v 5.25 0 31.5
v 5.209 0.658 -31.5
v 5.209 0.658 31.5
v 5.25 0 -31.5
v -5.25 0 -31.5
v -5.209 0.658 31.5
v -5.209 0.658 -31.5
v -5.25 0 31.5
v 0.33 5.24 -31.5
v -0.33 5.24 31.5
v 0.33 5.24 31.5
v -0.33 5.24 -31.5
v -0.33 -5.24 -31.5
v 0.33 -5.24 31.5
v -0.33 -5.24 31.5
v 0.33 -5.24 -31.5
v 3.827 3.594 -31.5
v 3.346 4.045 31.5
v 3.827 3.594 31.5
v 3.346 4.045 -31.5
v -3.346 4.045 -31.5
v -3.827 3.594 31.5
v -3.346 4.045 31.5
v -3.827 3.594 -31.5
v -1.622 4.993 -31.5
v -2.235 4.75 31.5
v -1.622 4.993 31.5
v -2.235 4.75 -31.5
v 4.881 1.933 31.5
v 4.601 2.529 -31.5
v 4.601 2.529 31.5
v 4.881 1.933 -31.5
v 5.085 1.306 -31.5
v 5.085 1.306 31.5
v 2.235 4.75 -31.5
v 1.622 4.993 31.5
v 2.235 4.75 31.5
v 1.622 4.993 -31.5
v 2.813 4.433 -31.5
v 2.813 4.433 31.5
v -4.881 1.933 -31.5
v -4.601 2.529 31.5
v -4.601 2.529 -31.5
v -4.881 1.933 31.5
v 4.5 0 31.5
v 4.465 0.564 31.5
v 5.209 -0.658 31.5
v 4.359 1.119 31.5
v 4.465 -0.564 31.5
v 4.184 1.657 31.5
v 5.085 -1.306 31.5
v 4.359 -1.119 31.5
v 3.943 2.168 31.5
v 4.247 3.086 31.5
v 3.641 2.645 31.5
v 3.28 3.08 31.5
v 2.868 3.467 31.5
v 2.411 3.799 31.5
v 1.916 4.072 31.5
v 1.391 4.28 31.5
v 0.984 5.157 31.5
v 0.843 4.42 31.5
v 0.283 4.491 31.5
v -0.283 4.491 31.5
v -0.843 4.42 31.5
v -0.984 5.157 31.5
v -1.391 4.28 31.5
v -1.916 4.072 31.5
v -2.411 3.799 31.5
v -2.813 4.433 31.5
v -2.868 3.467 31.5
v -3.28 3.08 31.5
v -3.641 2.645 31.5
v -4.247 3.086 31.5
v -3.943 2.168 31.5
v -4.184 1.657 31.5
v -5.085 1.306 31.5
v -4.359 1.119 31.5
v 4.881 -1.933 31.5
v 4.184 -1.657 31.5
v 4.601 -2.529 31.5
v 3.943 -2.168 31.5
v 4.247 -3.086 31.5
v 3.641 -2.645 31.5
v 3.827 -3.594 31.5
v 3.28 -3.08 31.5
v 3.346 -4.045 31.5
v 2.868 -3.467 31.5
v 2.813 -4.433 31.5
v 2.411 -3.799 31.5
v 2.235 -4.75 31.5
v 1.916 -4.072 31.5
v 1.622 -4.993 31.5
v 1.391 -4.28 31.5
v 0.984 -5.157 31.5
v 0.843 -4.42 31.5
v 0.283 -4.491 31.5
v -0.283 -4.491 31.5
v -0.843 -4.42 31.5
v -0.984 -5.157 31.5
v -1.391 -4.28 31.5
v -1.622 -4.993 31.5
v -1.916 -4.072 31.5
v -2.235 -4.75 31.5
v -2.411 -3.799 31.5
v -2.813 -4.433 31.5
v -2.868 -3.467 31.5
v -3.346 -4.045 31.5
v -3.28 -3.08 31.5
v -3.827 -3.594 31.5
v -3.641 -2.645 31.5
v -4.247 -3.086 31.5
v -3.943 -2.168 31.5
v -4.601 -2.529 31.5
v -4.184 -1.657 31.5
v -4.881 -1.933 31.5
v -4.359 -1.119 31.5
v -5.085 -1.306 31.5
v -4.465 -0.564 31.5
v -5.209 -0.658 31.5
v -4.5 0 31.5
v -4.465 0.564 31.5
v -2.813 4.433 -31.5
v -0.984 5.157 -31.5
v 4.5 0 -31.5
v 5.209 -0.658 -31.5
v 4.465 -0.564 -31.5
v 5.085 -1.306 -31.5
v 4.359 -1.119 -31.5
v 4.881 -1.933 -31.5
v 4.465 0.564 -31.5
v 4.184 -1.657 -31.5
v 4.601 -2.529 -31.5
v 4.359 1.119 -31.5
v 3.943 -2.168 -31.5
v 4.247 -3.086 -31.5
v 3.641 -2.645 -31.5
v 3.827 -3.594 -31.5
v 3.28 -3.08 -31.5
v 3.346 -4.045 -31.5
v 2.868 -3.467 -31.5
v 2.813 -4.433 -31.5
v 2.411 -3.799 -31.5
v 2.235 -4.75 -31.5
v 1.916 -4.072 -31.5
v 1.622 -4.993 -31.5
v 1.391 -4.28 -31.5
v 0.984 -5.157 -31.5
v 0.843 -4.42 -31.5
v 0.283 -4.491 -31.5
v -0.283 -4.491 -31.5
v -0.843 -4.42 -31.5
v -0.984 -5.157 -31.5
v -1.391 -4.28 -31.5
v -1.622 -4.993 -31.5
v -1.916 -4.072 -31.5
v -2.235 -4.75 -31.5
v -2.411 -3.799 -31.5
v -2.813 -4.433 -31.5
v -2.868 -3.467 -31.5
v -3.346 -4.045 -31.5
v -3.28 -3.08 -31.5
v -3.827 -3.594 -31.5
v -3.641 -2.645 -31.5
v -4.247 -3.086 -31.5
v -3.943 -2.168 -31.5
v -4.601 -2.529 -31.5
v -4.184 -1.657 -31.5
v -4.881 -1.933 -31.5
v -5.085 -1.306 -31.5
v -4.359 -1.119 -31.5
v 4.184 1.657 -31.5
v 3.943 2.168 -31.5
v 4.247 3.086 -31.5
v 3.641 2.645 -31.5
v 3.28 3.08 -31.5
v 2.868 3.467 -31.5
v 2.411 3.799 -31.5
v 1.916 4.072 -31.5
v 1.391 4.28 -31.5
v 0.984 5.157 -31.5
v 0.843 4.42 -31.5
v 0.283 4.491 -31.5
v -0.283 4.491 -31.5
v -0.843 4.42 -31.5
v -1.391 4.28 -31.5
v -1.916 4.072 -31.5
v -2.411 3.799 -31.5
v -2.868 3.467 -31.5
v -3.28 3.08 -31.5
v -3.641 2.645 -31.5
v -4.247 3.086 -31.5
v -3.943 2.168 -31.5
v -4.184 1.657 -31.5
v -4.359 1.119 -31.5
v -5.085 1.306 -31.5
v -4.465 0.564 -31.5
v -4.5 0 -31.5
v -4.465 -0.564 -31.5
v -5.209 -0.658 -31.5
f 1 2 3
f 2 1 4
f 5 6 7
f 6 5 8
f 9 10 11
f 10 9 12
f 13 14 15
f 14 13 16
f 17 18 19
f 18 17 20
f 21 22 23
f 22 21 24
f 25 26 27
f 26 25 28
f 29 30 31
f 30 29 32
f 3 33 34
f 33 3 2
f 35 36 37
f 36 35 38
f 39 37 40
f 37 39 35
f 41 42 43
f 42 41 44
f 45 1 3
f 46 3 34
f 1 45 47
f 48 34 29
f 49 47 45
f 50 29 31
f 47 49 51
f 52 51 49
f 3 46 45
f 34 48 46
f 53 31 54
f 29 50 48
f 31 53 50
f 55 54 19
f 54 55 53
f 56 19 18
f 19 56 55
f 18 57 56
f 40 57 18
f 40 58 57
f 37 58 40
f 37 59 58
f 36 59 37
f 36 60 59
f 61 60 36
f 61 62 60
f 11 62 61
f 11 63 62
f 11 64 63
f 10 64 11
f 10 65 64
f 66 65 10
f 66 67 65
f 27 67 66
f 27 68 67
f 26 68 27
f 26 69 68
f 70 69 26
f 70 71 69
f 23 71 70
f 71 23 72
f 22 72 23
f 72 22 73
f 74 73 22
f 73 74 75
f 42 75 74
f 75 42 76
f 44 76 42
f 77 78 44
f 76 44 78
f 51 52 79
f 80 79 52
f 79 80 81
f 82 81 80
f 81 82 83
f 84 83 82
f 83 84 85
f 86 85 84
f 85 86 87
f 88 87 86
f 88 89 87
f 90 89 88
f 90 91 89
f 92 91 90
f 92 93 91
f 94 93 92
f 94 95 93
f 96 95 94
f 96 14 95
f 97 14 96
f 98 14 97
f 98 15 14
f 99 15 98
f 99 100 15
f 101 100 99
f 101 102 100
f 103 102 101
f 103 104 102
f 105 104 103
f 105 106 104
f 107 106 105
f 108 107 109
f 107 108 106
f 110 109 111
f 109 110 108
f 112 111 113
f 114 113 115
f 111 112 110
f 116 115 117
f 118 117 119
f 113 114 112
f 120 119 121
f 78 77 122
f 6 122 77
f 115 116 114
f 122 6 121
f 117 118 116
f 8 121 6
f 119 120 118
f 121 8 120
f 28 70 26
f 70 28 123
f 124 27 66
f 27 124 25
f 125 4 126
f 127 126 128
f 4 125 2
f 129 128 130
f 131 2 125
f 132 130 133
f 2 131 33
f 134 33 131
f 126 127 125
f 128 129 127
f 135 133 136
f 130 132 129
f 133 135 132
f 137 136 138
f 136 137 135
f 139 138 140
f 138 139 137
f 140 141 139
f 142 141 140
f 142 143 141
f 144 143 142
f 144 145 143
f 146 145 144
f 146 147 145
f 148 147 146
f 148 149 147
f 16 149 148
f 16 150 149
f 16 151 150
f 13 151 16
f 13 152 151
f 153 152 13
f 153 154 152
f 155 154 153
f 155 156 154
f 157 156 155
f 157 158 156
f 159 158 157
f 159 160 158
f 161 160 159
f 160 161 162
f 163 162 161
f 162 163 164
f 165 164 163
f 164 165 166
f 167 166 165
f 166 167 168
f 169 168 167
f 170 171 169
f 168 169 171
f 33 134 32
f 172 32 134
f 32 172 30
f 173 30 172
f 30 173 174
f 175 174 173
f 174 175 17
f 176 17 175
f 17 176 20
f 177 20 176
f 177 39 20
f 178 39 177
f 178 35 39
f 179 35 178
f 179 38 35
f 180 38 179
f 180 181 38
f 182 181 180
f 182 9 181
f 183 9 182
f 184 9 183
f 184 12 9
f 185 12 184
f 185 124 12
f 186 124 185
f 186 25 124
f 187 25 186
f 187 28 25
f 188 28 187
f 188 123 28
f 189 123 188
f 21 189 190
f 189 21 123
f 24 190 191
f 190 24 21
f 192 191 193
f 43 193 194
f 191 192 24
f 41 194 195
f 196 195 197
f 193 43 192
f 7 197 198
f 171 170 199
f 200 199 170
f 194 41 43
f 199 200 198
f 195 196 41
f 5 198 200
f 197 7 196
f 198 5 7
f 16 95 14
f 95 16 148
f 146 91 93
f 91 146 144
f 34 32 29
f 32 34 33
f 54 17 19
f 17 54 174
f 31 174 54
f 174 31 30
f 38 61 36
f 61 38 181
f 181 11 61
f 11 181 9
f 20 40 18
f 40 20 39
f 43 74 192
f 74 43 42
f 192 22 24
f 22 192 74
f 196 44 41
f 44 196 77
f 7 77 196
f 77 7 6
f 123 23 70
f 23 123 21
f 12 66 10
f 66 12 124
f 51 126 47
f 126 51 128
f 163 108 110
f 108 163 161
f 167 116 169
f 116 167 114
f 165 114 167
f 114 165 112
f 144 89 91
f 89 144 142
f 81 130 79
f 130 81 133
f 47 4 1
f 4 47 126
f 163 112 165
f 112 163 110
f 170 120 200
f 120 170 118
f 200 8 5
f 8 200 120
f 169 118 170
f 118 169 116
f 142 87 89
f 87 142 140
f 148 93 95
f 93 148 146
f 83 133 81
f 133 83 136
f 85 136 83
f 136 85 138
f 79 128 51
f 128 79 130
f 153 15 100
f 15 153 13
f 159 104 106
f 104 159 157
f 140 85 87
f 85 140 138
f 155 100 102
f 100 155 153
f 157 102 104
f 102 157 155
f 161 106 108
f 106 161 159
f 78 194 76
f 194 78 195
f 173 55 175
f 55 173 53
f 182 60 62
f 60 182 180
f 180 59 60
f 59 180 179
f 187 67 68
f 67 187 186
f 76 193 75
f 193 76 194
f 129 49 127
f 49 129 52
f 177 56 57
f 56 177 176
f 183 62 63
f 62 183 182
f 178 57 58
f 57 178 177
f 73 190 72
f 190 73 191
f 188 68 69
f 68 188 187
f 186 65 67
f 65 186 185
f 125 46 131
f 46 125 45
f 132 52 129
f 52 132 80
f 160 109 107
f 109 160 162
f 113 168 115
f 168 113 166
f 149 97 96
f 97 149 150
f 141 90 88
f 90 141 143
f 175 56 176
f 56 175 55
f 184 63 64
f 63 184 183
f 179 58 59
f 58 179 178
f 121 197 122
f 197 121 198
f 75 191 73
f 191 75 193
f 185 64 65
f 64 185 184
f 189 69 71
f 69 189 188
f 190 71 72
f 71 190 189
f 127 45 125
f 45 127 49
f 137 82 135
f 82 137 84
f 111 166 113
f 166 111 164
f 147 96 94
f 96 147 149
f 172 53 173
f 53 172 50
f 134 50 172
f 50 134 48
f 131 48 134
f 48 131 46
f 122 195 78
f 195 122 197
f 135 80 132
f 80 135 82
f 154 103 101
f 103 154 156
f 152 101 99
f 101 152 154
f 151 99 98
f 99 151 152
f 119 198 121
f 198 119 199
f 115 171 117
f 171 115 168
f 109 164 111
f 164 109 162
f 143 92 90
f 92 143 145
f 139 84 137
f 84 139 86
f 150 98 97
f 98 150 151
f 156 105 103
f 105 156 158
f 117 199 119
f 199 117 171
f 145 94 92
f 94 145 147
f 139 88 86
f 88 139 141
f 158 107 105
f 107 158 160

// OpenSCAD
$fn = 50;


difference() {
	union() {
		translate(v = [0, 0, -31.5000000000]) {
			cylinder(h = 63, r = 5.2500000000);
		}
	}
	union() {
		translate(v = [0, 0, -100.0000000000]) {
			cylinder(h = 200, r = 4.5000000000);
		}
	}
}
